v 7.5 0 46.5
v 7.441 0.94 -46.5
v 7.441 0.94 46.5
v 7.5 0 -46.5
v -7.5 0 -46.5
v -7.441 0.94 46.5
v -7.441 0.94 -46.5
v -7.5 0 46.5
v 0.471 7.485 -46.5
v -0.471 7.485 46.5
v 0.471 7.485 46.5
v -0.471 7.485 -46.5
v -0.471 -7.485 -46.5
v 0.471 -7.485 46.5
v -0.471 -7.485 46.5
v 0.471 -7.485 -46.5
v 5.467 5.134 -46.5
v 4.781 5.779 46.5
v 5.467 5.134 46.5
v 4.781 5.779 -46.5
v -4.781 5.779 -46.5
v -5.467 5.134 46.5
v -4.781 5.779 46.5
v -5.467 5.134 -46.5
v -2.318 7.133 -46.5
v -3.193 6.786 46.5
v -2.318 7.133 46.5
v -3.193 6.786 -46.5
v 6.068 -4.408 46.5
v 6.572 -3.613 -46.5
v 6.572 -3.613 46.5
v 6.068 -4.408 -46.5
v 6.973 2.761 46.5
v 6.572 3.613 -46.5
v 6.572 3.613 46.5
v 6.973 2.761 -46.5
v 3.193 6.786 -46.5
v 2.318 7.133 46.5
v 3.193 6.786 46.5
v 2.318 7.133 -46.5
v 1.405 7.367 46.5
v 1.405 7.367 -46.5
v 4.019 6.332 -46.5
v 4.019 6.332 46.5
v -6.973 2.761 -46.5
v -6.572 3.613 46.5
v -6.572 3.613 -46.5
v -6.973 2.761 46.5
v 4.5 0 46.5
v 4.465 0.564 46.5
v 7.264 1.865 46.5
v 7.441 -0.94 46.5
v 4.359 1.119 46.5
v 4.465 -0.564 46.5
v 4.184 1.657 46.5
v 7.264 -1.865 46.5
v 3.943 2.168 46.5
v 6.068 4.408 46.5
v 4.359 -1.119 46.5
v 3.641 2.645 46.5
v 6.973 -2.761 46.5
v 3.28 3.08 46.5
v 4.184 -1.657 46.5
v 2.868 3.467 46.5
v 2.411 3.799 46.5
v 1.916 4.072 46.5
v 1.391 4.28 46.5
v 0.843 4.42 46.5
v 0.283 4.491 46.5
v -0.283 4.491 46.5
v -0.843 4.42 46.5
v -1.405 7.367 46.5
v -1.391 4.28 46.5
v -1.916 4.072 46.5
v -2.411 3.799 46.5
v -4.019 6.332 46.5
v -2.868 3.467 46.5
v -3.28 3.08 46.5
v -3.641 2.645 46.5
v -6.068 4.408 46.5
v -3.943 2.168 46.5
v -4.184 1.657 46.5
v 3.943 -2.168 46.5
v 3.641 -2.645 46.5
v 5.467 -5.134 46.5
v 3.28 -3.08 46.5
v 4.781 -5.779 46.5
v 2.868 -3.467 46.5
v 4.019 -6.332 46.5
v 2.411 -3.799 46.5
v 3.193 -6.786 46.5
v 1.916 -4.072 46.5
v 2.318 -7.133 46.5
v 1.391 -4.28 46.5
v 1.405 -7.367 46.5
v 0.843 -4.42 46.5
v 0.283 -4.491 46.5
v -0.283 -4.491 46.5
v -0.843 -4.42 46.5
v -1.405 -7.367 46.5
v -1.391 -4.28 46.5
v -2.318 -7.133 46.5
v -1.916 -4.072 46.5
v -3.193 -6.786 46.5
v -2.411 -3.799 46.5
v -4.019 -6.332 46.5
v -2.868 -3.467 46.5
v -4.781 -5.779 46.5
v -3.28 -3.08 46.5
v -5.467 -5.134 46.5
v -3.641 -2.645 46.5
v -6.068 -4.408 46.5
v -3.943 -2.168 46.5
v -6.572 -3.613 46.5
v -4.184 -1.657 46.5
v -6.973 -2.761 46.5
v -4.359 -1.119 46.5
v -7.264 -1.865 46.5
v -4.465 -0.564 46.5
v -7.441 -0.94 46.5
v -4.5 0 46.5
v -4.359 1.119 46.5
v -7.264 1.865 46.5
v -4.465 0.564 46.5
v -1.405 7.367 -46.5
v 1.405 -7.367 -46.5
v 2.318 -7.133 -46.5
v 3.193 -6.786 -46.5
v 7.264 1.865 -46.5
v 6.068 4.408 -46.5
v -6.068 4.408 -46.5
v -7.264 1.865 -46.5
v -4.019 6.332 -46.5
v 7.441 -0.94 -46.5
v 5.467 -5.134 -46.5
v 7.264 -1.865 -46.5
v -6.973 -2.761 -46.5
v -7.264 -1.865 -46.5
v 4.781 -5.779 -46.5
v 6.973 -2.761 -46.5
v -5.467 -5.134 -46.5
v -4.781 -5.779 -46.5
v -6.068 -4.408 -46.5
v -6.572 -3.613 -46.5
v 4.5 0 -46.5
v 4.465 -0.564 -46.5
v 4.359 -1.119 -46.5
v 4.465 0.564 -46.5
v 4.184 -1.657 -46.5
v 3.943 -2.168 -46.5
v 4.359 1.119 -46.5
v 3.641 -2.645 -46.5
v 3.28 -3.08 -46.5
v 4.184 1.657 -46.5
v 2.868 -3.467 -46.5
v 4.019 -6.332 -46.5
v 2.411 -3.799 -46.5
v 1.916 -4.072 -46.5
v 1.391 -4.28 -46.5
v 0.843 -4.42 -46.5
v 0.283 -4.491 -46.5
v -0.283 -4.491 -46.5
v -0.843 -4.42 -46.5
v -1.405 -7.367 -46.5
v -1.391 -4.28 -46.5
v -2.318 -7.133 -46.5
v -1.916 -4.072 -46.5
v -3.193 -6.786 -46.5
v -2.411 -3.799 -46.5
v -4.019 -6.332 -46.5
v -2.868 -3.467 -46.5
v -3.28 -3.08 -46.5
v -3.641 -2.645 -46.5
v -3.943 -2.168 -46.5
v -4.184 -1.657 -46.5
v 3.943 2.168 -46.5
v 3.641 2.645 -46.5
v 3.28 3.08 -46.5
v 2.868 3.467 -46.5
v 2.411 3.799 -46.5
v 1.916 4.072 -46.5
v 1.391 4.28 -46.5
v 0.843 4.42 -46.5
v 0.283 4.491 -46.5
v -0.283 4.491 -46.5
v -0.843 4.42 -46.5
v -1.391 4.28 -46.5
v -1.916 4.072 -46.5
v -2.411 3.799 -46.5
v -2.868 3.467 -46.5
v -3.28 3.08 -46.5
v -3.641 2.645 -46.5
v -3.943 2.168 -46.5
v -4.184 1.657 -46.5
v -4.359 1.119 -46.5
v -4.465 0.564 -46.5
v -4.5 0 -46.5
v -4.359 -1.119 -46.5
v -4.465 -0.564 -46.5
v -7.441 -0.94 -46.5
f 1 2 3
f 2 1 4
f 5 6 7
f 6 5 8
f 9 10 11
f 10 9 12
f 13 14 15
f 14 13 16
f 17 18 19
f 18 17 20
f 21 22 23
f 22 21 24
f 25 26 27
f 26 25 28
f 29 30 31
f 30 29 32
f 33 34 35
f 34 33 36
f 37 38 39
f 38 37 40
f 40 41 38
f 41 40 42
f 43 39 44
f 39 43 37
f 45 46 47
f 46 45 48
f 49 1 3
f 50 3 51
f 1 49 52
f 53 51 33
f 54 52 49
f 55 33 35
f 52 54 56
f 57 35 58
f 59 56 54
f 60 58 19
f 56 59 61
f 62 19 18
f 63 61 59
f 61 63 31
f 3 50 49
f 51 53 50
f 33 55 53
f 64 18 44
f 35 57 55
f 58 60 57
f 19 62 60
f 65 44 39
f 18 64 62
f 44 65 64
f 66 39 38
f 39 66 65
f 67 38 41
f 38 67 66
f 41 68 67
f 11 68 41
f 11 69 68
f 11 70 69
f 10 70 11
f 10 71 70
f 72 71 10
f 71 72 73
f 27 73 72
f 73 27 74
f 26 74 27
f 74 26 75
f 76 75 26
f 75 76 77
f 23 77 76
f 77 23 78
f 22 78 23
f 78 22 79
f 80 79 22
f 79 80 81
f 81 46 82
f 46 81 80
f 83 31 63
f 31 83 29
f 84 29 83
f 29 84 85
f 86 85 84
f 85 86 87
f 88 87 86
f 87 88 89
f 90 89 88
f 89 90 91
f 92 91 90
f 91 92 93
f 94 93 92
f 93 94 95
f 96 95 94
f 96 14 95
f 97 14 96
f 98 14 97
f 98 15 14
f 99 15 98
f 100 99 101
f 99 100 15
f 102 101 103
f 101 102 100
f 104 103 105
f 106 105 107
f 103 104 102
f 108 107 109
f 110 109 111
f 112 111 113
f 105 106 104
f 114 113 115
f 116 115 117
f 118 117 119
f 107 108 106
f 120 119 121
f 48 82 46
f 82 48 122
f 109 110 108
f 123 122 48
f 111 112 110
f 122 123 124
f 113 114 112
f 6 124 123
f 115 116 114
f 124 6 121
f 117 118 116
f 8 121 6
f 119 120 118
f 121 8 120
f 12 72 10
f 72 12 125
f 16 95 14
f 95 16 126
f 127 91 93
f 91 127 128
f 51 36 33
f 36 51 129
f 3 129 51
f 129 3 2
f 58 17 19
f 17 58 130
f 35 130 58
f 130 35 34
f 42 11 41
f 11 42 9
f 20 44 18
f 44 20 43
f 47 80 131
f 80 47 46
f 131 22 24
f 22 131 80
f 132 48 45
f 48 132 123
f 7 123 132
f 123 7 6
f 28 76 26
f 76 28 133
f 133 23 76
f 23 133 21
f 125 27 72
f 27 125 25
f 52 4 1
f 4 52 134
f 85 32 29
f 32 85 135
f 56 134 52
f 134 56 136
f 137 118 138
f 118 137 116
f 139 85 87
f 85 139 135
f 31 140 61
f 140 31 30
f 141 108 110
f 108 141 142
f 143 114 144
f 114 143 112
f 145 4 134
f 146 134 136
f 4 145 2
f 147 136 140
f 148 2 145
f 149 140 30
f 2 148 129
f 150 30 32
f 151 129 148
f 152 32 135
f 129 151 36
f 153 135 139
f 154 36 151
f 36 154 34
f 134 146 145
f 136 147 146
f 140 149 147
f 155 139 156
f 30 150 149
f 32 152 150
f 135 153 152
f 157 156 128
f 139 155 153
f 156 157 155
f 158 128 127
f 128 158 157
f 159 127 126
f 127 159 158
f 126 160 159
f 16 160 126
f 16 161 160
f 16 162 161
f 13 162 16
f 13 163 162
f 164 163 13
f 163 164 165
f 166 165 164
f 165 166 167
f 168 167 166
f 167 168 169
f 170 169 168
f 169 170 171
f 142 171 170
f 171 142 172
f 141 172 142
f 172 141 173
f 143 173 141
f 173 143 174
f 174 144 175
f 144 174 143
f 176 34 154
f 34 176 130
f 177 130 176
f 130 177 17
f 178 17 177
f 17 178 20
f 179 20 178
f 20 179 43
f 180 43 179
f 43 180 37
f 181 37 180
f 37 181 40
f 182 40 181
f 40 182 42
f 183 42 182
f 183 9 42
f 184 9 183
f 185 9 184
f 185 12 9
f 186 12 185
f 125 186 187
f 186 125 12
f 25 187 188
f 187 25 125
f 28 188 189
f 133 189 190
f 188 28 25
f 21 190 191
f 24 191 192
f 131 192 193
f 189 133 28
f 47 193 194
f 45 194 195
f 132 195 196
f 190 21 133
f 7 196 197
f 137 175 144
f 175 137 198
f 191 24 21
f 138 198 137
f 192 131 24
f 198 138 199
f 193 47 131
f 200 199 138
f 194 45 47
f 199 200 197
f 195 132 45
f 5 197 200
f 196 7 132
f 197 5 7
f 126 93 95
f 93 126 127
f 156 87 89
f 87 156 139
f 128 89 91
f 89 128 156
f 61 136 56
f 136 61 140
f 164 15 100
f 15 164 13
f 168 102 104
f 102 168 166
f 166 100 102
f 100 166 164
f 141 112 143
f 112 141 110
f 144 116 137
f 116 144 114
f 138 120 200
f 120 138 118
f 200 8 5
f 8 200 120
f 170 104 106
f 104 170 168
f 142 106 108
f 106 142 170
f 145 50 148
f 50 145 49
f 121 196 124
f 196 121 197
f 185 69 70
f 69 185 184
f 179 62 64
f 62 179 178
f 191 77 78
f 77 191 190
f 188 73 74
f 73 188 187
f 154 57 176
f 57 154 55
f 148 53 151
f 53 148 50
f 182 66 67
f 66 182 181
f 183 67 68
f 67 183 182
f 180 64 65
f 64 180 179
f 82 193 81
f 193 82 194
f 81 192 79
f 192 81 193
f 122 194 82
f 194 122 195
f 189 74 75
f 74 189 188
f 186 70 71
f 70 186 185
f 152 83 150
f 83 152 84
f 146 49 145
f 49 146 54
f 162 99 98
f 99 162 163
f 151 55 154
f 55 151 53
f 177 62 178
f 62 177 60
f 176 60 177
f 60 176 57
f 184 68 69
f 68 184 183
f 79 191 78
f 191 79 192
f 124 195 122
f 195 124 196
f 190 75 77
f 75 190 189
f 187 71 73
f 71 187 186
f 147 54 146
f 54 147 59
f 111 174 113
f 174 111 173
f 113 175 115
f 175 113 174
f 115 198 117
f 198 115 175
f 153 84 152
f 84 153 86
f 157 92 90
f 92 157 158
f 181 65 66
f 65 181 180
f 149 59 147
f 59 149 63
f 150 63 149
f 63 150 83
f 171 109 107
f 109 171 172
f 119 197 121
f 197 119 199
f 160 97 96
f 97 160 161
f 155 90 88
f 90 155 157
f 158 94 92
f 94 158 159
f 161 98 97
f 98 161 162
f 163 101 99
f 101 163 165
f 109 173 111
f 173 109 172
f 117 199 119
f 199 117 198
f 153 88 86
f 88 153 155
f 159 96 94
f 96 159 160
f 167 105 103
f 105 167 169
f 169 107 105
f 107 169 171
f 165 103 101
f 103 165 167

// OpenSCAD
$fn = 50;


difference() {
	union() {
		translate(v = [0, 0, -46.5000000000]) {
			cylinder(h = 93, r = 7.5000000000);
		}
	}
	union() {
		translate(v = [0, 0, -100.0000000000]) {
			cylinder(h = 200, r = 4.5000000000);
		}
	}
}
